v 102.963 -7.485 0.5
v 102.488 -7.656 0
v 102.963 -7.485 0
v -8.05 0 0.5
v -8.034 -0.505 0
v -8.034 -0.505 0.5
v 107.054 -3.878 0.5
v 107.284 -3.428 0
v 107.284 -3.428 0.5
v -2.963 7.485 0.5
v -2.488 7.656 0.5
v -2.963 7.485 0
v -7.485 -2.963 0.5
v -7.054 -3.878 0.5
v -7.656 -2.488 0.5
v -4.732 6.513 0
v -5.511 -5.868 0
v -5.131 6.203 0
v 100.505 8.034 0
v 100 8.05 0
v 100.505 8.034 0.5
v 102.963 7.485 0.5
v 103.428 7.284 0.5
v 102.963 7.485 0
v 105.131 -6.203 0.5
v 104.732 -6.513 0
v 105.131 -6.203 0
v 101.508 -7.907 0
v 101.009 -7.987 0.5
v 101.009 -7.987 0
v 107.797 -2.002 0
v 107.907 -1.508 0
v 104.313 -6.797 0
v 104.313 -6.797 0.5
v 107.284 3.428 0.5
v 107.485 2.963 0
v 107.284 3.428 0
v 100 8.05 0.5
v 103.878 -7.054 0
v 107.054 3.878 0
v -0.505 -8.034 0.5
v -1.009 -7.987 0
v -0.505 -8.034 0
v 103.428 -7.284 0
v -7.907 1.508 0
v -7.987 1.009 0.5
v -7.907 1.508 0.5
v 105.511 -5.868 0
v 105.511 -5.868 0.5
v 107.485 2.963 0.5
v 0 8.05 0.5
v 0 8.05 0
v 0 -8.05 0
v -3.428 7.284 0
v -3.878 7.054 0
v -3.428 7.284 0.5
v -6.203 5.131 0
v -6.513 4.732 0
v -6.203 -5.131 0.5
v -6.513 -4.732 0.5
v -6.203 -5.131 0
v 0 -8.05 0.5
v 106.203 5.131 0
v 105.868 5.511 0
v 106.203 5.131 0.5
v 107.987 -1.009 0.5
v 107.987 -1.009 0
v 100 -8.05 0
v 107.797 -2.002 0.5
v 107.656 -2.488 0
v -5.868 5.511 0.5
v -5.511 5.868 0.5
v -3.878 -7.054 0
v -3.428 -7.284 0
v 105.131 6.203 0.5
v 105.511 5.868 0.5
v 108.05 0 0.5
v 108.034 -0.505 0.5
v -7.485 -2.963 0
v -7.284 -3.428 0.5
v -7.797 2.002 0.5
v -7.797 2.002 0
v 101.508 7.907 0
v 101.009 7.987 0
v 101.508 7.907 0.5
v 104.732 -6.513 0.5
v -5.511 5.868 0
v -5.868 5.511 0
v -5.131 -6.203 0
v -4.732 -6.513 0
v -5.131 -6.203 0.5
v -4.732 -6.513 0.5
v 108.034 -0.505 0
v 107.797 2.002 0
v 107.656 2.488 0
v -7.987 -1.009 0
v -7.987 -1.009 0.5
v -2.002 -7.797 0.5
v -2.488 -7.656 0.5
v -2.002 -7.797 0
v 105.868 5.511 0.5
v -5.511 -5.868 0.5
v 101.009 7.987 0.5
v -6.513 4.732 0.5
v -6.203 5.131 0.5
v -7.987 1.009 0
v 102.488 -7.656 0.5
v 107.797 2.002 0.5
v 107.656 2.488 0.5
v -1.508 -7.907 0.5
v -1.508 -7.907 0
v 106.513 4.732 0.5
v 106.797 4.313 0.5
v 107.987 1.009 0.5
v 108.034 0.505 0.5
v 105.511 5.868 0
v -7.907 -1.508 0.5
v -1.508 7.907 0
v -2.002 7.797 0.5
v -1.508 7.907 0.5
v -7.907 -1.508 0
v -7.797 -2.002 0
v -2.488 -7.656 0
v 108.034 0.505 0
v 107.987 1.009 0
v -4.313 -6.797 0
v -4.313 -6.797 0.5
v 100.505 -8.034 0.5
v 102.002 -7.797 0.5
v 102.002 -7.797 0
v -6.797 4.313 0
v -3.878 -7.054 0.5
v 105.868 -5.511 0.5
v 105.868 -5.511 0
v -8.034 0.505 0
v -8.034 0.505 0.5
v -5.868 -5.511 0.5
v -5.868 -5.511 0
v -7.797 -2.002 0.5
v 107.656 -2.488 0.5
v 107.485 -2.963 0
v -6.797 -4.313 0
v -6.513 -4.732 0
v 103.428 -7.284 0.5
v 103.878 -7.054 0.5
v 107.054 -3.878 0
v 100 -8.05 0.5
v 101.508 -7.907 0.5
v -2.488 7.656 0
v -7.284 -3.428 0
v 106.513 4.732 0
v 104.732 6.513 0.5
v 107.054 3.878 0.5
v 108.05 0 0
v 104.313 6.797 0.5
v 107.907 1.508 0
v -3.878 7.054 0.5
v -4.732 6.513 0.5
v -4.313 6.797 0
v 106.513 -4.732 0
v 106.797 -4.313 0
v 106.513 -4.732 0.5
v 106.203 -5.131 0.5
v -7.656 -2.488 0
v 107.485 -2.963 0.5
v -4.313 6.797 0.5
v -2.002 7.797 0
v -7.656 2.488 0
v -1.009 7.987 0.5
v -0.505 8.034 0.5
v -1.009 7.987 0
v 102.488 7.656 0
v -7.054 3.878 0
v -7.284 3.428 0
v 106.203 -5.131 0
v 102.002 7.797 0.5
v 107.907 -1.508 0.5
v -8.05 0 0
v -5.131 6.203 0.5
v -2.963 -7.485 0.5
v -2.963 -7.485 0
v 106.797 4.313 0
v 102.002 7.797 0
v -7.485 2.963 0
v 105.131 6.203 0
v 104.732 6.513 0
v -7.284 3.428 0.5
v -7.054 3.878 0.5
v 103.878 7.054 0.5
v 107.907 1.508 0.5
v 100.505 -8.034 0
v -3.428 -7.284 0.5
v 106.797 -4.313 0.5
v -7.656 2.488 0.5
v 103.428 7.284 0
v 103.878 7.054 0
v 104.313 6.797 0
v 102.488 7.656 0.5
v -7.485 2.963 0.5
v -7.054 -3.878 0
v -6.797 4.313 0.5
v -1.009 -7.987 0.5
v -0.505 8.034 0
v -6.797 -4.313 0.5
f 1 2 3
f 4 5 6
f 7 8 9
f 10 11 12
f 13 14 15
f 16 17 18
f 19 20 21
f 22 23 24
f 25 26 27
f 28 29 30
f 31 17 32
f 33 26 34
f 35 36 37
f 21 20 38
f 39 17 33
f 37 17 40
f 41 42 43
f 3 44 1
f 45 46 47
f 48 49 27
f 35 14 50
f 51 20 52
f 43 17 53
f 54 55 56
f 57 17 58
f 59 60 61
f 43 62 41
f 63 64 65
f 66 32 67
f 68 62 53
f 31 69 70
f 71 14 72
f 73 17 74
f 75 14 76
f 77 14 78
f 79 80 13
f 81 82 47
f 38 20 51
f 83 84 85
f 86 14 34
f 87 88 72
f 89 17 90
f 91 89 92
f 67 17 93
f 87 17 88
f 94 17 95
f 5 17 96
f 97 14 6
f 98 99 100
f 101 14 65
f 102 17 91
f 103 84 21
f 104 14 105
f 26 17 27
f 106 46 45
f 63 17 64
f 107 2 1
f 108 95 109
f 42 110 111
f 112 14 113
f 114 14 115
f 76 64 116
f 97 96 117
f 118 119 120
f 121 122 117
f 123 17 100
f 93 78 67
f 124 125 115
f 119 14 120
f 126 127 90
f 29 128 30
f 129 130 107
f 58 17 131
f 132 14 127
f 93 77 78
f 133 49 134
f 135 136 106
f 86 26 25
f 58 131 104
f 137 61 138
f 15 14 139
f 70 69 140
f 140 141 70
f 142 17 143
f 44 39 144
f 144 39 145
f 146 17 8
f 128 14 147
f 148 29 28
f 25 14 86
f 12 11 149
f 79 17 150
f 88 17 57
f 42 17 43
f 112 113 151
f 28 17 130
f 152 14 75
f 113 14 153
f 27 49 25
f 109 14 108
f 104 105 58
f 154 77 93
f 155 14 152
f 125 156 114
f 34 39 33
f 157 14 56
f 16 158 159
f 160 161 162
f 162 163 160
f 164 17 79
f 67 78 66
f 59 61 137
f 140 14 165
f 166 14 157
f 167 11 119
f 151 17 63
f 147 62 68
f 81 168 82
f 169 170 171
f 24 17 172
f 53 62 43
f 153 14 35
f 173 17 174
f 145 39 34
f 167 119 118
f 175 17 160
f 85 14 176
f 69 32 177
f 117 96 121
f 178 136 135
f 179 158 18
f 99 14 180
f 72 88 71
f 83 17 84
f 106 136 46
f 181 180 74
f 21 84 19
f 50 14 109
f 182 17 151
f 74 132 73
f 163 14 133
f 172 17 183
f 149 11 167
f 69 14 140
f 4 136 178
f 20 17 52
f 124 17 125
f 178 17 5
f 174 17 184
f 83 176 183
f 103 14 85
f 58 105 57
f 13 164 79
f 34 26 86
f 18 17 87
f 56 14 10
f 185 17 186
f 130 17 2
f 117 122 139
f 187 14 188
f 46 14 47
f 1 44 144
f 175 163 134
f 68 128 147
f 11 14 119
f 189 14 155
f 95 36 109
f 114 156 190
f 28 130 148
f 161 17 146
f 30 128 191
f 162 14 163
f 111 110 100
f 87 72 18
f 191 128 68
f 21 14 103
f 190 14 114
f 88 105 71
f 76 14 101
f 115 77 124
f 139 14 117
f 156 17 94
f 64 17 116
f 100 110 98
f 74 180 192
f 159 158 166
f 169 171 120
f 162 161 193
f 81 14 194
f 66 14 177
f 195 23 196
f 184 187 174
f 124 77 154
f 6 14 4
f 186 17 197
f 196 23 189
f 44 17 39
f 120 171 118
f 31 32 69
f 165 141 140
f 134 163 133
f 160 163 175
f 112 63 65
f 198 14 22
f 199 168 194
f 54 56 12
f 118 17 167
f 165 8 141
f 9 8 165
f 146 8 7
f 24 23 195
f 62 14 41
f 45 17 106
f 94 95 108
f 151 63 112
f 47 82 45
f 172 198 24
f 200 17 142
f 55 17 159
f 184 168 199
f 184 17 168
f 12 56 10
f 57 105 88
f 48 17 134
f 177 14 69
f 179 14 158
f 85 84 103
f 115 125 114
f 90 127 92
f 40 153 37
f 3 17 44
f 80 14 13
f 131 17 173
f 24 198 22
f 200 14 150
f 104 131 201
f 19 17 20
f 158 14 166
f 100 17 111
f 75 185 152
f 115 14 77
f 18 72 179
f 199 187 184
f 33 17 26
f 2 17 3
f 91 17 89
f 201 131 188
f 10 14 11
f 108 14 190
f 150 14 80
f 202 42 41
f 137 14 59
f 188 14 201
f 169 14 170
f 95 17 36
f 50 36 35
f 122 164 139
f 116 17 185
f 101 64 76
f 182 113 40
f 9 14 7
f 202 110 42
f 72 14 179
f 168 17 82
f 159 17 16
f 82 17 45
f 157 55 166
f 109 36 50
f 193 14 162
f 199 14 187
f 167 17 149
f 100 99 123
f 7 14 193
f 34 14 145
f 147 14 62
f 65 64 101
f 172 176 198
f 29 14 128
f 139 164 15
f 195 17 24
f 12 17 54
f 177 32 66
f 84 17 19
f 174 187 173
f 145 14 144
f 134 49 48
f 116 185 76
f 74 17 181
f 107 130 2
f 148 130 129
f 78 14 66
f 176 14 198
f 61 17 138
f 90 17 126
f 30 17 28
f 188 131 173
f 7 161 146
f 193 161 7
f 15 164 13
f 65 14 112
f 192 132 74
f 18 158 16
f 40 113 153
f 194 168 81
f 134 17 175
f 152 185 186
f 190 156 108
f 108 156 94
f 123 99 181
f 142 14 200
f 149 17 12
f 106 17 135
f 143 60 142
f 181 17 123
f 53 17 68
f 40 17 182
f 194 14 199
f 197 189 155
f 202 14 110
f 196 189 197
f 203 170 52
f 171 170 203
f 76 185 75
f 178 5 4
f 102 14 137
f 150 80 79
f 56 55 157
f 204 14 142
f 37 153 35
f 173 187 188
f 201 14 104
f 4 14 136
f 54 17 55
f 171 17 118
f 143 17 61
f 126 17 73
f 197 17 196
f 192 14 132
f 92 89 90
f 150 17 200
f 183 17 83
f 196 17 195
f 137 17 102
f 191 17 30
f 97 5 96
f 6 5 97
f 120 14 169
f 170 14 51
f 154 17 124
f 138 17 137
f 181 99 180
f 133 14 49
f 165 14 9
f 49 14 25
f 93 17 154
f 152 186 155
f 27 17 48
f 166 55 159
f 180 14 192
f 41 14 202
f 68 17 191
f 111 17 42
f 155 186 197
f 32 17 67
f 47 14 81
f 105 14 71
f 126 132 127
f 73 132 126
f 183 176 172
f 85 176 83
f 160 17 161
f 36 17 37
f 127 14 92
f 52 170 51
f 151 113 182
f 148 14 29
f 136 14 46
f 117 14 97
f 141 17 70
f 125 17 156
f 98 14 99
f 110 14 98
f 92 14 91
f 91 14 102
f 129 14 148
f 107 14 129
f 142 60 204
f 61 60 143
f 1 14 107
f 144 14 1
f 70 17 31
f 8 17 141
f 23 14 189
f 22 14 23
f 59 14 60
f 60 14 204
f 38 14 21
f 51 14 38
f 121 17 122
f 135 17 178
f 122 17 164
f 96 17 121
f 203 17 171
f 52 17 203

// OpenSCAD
$fn=100;
holeEndD=16.1;
holeLength=116.1;
buttonHolderHeight=.5;

hull(){
    cylinder(h=buttonHolderHeight,d=holeEndD);
    translate([holeLength-holeEndD,0,0]) cylinder(h=buttonHolderHeight,d=holeEndD);
}
